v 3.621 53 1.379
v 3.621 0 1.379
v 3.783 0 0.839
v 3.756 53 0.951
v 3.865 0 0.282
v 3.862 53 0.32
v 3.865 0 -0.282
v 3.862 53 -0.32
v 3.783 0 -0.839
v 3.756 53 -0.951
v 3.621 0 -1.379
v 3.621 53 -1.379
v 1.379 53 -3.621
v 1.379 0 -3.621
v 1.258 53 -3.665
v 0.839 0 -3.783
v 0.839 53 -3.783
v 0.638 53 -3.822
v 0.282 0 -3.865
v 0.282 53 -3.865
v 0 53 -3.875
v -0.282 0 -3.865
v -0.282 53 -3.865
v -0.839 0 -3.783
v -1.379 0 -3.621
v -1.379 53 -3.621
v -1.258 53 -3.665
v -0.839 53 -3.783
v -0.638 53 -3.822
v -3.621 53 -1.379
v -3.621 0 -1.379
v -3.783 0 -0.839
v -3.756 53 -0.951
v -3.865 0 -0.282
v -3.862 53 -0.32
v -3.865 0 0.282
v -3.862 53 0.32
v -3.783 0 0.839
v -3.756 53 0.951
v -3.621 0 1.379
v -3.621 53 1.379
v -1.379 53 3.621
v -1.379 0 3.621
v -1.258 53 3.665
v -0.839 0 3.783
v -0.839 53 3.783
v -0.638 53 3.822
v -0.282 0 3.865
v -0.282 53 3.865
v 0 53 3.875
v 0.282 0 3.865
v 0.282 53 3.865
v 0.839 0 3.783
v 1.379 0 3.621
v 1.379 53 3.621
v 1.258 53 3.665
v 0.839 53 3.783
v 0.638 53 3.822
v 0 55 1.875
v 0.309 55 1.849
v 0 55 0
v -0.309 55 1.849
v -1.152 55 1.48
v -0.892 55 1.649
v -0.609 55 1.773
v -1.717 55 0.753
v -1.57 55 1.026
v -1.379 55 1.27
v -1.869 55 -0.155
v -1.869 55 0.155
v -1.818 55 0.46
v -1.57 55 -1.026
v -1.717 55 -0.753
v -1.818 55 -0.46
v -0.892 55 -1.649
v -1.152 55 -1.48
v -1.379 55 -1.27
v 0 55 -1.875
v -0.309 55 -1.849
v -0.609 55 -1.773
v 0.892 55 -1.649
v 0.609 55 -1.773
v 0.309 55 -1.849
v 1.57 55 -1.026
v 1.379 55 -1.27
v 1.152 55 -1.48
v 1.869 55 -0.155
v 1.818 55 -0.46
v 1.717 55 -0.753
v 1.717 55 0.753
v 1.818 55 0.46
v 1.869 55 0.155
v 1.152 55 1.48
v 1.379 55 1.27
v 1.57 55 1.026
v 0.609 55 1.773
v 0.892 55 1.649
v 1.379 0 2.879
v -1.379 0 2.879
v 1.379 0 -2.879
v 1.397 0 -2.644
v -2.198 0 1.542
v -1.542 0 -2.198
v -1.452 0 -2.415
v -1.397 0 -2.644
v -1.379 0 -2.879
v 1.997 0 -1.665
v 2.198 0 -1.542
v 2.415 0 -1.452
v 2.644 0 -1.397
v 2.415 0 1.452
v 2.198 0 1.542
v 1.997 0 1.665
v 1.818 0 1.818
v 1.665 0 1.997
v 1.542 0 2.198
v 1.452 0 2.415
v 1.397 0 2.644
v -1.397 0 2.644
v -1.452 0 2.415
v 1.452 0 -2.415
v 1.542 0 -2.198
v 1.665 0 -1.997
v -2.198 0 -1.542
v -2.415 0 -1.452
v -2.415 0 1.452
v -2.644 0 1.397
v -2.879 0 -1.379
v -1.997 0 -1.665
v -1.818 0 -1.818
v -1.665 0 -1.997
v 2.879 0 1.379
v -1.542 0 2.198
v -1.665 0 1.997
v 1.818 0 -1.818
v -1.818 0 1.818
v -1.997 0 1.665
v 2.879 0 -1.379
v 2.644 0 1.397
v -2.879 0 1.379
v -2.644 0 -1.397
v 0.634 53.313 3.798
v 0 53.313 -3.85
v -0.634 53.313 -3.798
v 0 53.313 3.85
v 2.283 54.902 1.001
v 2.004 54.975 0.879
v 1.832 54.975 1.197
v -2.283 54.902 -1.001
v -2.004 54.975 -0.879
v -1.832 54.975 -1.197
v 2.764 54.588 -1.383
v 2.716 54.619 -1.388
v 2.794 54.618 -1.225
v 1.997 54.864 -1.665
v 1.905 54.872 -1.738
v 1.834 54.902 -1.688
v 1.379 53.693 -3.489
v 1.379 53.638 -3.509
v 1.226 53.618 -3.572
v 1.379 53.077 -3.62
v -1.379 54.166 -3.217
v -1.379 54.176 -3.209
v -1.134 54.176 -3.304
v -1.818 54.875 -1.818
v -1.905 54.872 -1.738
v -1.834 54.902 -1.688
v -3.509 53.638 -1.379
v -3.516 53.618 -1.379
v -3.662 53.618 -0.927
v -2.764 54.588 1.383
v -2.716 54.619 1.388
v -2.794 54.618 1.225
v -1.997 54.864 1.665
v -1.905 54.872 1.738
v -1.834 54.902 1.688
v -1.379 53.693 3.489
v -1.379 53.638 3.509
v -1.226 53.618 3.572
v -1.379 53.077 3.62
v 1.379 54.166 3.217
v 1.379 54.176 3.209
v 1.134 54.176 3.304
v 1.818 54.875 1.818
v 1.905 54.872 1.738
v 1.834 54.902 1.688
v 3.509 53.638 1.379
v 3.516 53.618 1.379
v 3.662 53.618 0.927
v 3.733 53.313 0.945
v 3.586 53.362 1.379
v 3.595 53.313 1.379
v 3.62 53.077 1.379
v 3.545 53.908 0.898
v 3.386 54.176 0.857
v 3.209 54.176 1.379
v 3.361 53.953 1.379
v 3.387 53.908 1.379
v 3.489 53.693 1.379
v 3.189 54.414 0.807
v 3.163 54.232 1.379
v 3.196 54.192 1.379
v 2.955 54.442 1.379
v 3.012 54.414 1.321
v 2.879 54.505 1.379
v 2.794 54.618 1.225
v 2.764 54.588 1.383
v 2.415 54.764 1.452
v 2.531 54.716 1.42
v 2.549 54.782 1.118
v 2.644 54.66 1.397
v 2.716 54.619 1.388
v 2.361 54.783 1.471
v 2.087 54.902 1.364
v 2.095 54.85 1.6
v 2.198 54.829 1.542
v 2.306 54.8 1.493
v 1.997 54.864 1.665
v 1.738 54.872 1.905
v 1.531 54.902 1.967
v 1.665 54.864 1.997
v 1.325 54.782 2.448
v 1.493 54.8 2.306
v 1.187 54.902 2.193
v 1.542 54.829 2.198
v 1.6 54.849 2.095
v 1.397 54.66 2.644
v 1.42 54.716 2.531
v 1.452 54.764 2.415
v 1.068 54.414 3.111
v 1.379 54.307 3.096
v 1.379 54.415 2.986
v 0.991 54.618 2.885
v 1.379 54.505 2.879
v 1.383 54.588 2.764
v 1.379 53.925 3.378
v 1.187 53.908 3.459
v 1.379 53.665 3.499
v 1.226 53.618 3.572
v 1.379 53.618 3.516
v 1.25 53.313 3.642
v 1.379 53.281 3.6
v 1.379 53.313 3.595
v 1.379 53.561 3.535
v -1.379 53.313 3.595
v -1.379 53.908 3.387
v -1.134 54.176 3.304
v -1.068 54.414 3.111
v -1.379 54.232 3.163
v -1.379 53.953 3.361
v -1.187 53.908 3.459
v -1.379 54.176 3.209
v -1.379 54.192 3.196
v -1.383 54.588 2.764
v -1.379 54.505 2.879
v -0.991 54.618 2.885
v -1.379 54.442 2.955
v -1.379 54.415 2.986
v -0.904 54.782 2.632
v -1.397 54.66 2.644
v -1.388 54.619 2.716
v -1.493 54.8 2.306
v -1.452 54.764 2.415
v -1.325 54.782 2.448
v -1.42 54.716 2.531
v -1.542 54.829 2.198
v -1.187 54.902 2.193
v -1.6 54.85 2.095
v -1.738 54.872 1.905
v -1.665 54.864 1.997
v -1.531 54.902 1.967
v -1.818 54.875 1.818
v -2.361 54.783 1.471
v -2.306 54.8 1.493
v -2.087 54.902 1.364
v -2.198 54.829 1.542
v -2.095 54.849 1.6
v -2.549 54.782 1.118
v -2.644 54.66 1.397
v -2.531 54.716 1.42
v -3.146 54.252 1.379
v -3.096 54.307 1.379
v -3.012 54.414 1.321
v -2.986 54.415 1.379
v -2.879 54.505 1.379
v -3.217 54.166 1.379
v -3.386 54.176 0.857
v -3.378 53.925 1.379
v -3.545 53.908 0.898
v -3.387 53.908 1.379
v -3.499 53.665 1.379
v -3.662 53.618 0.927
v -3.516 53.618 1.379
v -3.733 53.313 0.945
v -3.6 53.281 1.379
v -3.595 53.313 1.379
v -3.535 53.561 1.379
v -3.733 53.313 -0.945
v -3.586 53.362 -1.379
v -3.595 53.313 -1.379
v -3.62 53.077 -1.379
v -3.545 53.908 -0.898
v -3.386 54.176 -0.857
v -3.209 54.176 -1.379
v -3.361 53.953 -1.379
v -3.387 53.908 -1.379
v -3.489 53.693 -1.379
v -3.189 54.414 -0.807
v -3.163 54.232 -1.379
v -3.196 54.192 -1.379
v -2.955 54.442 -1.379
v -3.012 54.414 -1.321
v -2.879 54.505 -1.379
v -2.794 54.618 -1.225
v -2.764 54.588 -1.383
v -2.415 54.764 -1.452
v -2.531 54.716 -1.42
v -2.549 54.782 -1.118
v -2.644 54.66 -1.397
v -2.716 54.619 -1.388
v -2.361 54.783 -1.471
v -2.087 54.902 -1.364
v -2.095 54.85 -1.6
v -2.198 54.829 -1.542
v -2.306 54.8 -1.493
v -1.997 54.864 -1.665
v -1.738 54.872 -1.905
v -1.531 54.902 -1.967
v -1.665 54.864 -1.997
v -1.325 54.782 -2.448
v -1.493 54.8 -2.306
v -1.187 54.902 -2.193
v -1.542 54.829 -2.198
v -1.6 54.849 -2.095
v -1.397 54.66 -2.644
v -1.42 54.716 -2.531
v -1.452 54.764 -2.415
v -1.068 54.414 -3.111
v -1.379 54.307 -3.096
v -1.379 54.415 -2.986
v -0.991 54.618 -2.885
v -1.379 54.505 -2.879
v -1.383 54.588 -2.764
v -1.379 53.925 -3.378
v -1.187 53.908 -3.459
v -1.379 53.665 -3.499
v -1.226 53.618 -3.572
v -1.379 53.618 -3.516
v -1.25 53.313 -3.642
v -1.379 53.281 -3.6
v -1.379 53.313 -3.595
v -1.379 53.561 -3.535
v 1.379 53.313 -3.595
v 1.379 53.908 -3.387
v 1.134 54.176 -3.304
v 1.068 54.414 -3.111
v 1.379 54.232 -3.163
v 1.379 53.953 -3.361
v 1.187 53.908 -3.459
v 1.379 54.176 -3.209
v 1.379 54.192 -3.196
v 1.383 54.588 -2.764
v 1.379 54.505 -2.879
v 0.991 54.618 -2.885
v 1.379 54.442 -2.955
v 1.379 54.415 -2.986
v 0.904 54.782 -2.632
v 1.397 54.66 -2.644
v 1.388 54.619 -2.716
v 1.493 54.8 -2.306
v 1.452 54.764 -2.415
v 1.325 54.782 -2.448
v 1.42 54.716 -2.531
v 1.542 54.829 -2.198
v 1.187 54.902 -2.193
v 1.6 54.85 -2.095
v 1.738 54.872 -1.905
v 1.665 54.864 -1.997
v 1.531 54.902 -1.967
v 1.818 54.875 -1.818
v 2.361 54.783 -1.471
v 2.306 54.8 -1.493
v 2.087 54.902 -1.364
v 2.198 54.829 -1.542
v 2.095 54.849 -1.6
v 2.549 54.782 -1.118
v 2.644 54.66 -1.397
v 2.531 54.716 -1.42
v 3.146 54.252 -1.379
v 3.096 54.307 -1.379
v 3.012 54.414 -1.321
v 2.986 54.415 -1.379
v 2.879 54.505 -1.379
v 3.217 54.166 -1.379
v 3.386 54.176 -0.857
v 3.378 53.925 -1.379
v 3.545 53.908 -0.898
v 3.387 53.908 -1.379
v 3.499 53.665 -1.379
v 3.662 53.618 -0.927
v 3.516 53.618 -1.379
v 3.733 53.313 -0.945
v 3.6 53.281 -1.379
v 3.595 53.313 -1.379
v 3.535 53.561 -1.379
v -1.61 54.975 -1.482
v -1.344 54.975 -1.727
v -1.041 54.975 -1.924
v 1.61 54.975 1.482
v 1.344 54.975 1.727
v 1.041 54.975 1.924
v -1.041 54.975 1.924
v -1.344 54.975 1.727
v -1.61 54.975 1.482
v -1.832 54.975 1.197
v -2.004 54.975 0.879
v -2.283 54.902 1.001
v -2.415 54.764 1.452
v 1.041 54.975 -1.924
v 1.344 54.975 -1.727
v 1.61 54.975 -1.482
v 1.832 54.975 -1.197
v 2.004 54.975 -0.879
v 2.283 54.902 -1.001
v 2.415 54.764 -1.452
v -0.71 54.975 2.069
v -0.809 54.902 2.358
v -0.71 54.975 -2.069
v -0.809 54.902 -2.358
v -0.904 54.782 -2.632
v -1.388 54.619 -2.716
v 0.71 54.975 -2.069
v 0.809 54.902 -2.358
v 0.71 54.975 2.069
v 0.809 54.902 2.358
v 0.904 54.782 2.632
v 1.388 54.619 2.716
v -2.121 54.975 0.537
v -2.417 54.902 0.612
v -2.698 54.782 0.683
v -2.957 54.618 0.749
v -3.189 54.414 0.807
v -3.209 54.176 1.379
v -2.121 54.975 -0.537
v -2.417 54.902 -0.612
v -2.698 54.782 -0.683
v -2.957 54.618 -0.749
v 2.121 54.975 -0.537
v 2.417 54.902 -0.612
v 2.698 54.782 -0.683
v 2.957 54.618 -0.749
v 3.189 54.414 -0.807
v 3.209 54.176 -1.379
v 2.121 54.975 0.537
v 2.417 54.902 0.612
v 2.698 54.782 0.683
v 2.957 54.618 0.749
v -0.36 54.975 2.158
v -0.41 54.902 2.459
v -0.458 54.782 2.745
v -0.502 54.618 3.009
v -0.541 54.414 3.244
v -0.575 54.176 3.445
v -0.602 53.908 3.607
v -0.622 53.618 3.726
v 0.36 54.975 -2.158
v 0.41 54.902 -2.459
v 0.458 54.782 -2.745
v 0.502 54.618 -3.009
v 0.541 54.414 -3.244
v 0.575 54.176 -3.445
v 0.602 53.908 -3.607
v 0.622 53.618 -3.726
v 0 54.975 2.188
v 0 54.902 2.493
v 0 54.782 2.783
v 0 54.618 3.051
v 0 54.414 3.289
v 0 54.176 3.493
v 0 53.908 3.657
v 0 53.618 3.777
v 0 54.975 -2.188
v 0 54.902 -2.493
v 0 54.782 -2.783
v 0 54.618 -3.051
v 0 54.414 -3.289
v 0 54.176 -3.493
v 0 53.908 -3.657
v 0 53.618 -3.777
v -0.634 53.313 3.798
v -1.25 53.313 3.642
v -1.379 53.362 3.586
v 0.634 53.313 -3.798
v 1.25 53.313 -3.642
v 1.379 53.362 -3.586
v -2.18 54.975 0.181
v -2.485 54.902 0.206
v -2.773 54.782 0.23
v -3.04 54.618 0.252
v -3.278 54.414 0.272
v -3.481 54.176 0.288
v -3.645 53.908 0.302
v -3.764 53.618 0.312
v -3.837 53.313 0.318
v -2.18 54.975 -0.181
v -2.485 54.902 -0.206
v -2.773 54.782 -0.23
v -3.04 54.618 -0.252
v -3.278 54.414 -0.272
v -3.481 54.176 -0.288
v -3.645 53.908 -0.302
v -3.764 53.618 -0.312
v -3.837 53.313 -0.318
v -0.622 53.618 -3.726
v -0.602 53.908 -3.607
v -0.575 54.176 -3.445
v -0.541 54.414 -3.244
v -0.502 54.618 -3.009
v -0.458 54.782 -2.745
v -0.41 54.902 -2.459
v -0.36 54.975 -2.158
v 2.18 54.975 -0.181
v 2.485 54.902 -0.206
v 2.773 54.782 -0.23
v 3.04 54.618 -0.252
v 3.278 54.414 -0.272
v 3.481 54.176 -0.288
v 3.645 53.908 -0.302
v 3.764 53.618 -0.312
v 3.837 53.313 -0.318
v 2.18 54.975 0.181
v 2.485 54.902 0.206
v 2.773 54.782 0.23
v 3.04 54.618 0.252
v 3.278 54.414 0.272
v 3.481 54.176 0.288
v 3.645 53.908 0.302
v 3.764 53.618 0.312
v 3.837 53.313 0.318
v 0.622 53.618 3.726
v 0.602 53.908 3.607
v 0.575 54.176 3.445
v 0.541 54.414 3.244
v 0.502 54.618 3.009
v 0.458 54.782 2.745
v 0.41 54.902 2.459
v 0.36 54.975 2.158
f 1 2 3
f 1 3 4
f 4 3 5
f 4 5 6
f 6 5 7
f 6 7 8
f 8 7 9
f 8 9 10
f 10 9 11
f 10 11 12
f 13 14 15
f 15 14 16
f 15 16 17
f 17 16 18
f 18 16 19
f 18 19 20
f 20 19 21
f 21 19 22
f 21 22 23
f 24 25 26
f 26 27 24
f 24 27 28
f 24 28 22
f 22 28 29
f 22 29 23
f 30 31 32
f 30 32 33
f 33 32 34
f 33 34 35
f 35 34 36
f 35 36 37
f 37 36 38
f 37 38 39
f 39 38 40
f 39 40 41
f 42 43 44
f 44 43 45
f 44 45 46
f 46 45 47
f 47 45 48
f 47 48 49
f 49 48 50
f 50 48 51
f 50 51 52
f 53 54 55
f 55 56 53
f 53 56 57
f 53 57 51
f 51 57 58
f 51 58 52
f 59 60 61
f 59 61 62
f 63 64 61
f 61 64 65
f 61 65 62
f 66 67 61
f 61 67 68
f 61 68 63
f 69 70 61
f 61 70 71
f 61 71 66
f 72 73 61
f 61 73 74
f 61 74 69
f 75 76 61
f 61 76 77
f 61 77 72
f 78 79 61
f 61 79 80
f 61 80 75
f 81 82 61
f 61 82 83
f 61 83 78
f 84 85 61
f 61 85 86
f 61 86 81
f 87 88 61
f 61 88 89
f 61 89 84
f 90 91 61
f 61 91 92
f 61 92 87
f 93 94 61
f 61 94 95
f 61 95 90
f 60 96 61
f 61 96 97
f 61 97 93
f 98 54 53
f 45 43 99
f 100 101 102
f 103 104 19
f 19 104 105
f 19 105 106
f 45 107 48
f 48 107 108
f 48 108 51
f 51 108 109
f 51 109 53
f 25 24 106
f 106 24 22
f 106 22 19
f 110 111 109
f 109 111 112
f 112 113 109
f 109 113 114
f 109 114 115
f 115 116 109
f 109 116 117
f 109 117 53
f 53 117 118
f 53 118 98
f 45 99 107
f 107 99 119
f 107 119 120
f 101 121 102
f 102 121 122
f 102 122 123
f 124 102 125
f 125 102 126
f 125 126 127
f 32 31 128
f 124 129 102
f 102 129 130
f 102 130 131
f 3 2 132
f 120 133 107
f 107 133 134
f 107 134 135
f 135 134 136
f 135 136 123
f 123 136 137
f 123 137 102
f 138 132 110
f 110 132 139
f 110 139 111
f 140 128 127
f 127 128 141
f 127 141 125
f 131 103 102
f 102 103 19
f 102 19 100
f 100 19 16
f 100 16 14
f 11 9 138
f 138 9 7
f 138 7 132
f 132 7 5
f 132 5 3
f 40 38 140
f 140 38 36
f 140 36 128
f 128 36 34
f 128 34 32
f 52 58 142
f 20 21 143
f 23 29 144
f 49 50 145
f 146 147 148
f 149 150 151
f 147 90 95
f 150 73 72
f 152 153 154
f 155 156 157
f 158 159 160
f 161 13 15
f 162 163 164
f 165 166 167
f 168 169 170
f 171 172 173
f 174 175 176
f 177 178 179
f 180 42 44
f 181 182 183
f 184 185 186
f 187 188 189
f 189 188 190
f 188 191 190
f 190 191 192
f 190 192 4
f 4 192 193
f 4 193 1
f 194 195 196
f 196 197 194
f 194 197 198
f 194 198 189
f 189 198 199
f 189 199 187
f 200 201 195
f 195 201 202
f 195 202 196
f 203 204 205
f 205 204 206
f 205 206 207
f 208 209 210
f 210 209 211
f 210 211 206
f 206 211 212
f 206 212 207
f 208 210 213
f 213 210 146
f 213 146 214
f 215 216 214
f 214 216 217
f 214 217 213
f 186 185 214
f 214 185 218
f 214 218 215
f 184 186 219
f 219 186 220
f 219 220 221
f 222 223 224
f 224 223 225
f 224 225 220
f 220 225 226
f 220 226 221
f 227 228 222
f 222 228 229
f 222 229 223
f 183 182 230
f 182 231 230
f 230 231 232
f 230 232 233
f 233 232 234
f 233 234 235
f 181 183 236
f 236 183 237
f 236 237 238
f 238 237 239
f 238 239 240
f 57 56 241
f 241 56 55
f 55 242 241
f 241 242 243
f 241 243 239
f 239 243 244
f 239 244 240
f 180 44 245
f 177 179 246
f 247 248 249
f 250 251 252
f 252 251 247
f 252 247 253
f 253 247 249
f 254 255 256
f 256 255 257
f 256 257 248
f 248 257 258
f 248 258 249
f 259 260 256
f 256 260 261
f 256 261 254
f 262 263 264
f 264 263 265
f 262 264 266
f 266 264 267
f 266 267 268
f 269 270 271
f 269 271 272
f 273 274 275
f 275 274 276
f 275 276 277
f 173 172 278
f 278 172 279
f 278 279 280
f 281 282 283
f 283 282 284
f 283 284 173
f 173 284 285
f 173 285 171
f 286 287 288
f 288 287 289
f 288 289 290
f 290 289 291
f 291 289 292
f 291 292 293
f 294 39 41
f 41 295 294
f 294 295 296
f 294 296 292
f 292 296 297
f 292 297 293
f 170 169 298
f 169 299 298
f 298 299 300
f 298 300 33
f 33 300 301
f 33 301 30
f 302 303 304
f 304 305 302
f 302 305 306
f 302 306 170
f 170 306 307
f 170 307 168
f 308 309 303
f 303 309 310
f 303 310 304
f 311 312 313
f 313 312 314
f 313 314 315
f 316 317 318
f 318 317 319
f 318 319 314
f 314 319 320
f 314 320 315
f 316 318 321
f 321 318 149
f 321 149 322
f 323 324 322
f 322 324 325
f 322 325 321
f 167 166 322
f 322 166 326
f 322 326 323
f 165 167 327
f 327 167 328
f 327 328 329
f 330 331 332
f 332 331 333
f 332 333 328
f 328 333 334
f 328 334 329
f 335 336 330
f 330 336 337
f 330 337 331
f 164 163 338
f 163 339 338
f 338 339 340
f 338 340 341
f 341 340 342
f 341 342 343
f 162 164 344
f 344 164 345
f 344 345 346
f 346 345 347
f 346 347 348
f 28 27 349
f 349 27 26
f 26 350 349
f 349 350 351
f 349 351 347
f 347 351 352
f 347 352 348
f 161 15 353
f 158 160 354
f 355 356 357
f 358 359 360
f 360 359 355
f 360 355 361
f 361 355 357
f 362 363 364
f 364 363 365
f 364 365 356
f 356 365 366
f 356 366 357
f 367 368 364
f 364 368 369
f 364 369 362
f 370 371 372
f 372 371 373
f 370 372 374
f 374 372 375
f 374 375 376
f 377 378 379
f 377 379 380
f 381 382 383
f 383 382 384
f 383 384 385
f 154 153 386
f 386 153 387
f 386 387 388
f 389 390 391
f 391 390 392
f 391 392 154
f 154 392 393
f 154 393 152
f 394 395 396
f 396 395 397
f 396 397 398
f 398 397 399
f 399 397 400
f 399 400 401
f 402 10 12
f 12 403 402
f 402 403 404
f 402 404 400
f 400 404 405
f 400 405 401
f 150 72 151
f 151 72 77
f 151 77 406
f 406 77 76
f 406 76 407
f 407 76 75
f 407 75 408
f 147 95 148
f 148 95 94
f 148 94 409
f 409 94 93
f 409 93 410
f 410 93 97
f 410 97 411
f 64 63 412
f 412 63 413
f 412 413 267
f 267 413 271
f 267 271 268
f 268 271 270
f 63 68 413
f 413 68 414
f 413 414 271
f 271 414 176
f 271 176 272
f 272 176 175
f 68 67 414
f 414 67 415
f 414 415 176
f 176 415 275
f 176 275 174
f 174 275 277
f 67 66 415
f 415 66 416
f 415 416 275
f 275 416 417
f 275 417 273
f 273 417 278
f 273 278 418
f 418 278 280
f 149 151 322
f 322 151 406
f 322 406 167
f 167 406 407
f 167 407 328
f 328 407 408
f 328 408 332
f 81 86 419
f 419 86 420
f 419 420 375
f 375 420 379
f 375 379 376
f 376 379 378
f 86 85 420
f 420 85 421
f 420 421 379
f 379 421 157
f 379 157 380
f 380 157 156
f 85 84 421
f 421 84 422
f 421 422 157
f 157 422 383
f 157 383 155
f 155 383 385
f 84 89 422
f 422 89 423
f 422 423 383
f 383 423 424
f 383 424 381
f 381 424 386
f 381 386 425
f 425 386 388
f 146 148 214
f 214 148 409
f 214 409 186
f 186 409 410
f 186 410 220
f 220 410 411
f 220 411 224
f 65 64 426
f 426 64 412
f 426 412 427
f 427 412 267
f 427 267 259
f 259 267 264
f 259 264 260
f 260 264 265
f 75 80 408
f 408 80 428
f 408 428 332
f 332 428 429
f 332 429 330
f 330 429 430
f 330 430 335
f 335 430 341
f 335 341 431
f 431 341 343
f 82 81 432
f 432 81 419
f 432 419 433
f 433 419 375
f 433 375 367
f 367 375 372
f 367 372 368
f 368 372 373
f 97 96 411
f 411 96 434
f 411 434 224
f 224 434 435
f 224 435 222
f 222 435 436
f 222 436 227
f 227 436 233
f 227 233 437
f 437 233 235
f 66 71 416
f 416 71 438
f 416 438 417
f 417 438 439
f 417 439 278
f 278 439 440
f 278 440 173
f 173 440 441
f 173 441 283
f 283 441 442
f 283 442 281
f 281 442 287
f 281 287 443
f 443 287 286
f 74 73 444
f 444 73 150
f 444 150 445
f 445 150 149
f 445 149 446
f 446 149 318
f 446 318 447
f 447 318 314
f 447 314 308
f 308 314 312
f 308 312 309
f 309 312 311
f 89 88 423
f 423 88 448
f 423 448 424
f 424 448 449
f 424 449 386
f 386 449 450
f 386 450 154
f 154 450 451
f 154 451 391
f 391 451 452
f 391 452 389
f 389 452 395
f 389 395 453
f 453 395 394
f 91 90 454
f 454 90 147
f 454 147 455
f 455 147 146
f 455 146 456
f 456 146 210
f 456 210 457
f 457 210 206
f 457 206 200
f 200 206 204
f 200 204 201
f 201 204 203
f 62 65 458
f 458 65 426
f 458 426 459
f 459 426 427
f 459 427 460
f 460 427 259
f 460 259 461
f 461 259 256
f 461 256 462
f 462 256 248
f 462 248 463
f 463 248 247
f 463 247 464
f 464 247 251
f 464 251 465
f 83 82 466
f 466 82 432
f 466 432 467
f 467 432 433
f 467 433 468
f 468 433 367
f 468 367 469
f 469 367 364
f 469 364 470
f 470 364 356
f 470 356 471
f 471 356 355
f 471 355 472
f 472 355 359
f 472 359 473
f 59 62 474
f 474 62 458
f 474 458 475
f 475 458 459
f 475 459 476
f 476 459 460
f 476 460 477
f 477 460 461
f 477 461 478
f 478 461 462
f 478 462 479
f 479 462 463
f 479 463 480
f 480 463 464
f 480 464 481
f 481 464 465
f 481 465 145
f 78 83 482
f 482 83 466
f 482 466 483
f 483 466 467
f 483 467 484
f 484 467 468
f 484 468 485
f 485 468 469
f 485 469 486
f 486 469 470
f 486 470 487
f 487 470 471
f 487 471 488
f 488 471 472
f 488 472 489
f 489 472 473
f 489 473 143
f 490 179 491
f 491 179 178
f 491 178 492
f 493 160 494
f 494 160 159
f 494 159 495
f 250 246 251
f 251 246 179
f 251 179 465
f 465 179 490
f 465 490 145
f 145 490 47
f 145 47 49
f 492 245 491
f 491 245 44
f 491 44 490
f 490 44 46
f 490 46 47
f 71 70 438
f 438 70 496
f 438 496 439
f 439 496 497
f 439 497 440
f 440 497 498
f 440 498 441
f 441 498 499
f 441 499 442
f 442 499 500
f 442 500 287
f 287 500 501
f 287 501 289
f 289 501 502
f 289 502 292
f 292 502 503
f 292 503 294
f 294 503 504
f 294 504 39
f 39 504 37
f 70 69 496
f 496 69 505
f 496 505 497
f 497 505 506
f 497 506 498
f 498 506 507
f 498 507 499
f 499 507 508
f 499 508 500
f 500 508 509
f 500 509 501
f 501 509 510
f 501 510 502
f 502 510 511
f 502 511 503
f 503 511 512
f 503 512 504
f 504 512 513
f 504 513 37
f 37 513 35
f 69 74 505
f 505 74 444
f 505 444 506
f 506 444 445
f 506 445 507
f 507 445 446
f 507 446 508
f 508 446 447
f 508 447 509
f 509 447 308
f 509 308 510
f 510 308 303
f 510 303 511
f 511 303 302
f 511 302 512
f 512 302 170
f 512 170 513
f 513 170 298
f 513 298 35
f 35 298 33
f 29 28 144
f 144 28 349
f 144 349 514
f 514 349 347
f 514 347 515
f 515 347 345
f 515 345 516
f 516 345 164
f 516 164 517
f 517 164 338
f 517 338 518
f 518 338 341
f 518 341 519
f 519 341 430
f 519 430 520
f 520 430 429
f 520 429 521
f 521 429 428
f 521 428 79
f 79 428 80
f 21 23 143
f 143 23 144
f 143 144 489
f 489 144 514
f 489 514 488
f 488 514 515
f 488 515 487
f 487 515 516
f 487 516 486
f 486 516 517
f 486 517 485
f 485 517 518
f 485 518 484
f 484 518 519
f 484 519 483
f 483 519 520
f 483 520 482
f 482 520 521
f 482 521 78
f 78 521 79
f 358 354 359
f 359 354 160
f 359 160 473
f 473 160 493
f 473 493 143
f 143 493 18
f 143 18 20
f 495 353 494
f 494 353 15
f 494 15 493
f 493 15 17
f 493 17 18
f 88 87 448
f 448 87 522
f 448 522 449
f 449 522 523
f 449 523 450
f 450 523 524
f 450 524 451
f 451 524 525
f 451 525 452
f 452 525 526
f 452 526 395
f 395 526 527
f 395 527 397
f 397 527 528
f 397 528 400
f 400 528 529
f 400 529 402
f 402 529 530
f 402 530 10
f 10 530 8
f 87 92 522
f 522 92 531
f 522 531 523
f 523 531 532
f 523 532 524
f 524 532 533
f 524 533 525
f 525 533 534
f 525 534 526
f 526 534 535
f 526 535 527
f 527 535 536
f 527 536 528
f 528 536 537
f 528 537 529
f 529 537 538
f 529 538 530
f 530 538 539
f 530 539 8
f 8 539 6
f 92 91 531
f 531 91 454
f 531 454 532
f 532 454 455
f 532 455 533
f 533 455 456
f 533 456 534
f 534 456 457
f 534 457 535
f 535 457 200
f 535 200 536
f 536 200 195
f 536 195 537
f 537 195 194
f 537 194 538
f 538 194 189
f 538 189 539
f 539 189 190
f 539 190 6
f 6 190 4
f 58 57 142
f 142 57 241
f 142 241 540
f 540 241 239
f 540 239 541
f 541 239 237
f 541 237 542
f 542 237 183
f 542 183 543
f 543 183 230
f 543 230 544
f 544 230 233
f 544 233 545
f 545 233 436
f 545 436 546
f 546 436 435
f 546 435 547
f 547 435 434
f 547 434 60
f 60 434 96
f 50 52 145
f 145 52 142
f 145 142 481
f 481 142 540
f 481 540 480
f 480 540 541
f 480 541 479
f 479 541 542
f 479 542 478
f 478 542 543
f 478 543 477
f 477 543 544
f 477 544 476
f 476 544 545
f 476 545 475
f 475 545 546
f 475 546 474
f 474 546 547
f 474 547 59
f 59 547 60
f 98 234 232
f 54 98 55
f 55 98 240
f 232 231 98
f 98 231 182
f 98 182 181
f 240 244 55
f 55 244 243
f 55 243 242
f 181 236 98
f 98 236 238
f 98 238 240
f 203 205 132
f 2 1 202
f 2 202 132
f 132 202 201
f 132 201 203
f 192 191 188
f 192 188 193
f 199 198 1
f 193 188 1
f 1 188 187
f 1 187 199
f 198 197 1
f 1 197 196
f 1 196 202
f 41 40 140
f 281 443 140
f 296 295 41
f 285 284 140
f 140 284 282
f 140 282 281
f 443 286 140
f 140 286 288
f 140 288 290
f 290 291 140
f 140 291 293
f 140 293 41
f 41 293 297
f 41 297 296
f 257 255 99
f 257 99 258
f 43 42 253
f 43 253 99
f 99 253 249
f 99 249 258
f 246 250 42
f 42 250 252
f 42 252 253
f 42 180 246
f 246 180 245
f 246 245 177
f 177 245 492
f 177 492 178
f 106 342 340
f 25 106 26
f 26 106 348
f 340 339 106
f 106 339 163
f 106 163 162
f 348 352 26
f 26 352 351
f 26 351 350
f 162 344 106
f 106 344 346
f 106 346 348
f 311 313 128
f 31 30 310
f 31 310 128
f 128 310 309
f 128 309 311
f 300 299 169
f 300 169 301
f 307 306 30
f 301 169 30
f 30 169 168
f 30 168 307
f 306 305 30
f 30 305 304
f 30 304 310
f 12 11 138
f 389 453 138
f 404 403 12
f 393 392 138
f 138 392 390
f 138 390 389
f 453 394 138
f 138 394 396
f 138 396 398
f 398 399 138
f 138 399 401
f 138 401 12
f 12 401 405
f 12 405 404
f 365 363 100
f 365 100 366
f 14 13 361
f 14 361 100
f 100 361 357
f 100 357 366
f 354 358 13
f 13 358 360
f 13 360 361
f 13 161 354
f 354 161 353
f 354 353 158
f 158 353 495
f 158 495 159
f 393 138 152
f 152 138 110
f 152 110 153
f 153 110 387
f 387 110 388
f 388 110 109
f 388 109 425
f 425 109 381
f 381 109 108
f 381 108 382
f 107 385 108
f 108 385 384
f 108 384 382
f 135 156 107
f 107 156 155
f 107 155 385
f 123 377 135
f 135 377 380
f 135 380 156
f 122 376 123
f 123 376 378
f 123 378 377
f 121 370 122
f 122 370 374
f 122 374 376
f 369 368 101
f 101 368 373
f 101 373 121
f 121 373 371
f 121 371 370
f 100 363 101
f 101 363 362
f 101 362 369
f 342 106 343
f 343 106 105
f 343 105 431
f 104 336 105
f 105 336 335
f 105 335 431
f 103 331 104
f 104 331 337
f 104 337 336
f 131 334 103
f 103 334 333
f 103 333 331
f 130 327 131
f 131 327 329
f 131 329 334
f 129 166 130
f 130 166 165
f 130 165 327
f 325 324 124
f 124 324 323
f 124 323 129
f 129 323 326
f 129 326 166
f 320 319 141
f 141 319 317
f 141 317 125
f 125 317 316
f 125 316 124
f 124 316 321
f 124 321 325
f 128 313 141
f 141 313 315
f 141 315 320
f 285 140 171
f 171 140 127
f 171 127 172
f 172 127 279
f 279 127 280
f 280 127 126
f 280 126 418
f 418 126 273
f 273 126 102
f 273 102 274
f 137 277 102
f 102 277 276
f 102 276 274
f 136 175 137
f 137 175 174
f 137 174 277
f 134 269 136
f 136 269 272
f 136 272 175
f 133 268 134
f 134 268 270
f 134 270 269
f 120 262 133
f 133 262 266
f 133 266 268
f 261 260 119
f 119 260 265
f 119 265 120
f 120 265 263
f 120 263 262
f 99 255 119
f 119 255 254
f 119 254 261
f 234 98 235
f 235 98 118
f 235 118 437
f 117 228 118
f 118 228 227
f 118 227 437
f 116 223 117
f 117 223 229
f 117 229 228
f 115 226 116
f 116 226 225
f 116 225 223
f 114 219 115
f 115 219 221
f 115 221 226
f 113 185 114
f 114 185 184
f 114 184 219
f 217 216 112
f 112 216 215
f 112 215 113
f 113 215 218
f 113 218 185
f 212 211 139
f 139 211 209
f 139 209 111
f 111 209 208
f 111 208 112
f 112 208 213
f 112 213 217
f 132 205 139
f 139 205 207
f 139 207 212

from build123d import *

# Parameters (mm, degrees)
SKETCH1_R           = 3.875
BOSS_EXTRUDE1_DEPTH = 55
FILLET1_R           = 2
SKETCH2_W           = 2.5
SKETCH2_H           = 2.5
CUT_EXTRUDE1_DEPTH  = 56.272337121
CIRPATTERN1_COUNT   = 4
FILLET2_R           = 1.5


with BuildPart() as part:
    # Sketch1 → Boss-Extrude1 (new body)
    with BuildSketch(Plane(origin=(0, 0, 0), x_dir=(1, 0, 0), z_dir=(0, 1, 0))):
        with Locations(Location((0, 0, 0), (0, 0, 270))):
            Circle(SKETCH1_R)
    extrude(amount=BOSS_EXTRUDE1_DEPTH)

    # Fillet1
    fillet1_edges = [part.edges().sort_by_distance(p)[0] for p in [
        (0, 55, -3.875),
    ]]
    fillet(fillet1_edges, radius=FILLET1_R)

    # Sketch2 → Cut-Extrude1 (cut, through all)
    with BuildSketch(Plane(origin=(0, 55, 0), x_dir=(1, 0, 0), z_dir=(0, 1, 0))):
        with Locations((2.628858223, -2.628858223)):
            Rectangle(SKETCH2_W, SKETCH2_H)
    cut_extrude1 = extrude(amount=-CUT_EXTRUDE1_DEPTH, mode=Mode.SUBTRACT)

    # CirPattern1: Cut-Extrude1 ×4 about axis
    cirpattern1_axis = Axis((0, 0, 0), (0, 1, 0))
    for i in range(1, CIRPATTERN1_COUNT):
        add(cut_extrude1.rotate(cirpattern1_axis, i * 360 / CIRPATTERN1_COUNT), mode=Mode.SUBTRACT)

    # Fillet2
    fillet2_edges = [part.edges().sort_by_distance(p)[0] for p in [
        (1.378858223, 27.499296628, -1.378858223),
        (-1.378858223, 27.499296628, -1.378858223),
        (-1.378858223, 27.499296628, 1.378858223),
        (1.378858223, 27.499296628, 1.378858223),
    ]]
    fillet(fillet2_edges, radius=FILLET2_R)


solid = part.part
